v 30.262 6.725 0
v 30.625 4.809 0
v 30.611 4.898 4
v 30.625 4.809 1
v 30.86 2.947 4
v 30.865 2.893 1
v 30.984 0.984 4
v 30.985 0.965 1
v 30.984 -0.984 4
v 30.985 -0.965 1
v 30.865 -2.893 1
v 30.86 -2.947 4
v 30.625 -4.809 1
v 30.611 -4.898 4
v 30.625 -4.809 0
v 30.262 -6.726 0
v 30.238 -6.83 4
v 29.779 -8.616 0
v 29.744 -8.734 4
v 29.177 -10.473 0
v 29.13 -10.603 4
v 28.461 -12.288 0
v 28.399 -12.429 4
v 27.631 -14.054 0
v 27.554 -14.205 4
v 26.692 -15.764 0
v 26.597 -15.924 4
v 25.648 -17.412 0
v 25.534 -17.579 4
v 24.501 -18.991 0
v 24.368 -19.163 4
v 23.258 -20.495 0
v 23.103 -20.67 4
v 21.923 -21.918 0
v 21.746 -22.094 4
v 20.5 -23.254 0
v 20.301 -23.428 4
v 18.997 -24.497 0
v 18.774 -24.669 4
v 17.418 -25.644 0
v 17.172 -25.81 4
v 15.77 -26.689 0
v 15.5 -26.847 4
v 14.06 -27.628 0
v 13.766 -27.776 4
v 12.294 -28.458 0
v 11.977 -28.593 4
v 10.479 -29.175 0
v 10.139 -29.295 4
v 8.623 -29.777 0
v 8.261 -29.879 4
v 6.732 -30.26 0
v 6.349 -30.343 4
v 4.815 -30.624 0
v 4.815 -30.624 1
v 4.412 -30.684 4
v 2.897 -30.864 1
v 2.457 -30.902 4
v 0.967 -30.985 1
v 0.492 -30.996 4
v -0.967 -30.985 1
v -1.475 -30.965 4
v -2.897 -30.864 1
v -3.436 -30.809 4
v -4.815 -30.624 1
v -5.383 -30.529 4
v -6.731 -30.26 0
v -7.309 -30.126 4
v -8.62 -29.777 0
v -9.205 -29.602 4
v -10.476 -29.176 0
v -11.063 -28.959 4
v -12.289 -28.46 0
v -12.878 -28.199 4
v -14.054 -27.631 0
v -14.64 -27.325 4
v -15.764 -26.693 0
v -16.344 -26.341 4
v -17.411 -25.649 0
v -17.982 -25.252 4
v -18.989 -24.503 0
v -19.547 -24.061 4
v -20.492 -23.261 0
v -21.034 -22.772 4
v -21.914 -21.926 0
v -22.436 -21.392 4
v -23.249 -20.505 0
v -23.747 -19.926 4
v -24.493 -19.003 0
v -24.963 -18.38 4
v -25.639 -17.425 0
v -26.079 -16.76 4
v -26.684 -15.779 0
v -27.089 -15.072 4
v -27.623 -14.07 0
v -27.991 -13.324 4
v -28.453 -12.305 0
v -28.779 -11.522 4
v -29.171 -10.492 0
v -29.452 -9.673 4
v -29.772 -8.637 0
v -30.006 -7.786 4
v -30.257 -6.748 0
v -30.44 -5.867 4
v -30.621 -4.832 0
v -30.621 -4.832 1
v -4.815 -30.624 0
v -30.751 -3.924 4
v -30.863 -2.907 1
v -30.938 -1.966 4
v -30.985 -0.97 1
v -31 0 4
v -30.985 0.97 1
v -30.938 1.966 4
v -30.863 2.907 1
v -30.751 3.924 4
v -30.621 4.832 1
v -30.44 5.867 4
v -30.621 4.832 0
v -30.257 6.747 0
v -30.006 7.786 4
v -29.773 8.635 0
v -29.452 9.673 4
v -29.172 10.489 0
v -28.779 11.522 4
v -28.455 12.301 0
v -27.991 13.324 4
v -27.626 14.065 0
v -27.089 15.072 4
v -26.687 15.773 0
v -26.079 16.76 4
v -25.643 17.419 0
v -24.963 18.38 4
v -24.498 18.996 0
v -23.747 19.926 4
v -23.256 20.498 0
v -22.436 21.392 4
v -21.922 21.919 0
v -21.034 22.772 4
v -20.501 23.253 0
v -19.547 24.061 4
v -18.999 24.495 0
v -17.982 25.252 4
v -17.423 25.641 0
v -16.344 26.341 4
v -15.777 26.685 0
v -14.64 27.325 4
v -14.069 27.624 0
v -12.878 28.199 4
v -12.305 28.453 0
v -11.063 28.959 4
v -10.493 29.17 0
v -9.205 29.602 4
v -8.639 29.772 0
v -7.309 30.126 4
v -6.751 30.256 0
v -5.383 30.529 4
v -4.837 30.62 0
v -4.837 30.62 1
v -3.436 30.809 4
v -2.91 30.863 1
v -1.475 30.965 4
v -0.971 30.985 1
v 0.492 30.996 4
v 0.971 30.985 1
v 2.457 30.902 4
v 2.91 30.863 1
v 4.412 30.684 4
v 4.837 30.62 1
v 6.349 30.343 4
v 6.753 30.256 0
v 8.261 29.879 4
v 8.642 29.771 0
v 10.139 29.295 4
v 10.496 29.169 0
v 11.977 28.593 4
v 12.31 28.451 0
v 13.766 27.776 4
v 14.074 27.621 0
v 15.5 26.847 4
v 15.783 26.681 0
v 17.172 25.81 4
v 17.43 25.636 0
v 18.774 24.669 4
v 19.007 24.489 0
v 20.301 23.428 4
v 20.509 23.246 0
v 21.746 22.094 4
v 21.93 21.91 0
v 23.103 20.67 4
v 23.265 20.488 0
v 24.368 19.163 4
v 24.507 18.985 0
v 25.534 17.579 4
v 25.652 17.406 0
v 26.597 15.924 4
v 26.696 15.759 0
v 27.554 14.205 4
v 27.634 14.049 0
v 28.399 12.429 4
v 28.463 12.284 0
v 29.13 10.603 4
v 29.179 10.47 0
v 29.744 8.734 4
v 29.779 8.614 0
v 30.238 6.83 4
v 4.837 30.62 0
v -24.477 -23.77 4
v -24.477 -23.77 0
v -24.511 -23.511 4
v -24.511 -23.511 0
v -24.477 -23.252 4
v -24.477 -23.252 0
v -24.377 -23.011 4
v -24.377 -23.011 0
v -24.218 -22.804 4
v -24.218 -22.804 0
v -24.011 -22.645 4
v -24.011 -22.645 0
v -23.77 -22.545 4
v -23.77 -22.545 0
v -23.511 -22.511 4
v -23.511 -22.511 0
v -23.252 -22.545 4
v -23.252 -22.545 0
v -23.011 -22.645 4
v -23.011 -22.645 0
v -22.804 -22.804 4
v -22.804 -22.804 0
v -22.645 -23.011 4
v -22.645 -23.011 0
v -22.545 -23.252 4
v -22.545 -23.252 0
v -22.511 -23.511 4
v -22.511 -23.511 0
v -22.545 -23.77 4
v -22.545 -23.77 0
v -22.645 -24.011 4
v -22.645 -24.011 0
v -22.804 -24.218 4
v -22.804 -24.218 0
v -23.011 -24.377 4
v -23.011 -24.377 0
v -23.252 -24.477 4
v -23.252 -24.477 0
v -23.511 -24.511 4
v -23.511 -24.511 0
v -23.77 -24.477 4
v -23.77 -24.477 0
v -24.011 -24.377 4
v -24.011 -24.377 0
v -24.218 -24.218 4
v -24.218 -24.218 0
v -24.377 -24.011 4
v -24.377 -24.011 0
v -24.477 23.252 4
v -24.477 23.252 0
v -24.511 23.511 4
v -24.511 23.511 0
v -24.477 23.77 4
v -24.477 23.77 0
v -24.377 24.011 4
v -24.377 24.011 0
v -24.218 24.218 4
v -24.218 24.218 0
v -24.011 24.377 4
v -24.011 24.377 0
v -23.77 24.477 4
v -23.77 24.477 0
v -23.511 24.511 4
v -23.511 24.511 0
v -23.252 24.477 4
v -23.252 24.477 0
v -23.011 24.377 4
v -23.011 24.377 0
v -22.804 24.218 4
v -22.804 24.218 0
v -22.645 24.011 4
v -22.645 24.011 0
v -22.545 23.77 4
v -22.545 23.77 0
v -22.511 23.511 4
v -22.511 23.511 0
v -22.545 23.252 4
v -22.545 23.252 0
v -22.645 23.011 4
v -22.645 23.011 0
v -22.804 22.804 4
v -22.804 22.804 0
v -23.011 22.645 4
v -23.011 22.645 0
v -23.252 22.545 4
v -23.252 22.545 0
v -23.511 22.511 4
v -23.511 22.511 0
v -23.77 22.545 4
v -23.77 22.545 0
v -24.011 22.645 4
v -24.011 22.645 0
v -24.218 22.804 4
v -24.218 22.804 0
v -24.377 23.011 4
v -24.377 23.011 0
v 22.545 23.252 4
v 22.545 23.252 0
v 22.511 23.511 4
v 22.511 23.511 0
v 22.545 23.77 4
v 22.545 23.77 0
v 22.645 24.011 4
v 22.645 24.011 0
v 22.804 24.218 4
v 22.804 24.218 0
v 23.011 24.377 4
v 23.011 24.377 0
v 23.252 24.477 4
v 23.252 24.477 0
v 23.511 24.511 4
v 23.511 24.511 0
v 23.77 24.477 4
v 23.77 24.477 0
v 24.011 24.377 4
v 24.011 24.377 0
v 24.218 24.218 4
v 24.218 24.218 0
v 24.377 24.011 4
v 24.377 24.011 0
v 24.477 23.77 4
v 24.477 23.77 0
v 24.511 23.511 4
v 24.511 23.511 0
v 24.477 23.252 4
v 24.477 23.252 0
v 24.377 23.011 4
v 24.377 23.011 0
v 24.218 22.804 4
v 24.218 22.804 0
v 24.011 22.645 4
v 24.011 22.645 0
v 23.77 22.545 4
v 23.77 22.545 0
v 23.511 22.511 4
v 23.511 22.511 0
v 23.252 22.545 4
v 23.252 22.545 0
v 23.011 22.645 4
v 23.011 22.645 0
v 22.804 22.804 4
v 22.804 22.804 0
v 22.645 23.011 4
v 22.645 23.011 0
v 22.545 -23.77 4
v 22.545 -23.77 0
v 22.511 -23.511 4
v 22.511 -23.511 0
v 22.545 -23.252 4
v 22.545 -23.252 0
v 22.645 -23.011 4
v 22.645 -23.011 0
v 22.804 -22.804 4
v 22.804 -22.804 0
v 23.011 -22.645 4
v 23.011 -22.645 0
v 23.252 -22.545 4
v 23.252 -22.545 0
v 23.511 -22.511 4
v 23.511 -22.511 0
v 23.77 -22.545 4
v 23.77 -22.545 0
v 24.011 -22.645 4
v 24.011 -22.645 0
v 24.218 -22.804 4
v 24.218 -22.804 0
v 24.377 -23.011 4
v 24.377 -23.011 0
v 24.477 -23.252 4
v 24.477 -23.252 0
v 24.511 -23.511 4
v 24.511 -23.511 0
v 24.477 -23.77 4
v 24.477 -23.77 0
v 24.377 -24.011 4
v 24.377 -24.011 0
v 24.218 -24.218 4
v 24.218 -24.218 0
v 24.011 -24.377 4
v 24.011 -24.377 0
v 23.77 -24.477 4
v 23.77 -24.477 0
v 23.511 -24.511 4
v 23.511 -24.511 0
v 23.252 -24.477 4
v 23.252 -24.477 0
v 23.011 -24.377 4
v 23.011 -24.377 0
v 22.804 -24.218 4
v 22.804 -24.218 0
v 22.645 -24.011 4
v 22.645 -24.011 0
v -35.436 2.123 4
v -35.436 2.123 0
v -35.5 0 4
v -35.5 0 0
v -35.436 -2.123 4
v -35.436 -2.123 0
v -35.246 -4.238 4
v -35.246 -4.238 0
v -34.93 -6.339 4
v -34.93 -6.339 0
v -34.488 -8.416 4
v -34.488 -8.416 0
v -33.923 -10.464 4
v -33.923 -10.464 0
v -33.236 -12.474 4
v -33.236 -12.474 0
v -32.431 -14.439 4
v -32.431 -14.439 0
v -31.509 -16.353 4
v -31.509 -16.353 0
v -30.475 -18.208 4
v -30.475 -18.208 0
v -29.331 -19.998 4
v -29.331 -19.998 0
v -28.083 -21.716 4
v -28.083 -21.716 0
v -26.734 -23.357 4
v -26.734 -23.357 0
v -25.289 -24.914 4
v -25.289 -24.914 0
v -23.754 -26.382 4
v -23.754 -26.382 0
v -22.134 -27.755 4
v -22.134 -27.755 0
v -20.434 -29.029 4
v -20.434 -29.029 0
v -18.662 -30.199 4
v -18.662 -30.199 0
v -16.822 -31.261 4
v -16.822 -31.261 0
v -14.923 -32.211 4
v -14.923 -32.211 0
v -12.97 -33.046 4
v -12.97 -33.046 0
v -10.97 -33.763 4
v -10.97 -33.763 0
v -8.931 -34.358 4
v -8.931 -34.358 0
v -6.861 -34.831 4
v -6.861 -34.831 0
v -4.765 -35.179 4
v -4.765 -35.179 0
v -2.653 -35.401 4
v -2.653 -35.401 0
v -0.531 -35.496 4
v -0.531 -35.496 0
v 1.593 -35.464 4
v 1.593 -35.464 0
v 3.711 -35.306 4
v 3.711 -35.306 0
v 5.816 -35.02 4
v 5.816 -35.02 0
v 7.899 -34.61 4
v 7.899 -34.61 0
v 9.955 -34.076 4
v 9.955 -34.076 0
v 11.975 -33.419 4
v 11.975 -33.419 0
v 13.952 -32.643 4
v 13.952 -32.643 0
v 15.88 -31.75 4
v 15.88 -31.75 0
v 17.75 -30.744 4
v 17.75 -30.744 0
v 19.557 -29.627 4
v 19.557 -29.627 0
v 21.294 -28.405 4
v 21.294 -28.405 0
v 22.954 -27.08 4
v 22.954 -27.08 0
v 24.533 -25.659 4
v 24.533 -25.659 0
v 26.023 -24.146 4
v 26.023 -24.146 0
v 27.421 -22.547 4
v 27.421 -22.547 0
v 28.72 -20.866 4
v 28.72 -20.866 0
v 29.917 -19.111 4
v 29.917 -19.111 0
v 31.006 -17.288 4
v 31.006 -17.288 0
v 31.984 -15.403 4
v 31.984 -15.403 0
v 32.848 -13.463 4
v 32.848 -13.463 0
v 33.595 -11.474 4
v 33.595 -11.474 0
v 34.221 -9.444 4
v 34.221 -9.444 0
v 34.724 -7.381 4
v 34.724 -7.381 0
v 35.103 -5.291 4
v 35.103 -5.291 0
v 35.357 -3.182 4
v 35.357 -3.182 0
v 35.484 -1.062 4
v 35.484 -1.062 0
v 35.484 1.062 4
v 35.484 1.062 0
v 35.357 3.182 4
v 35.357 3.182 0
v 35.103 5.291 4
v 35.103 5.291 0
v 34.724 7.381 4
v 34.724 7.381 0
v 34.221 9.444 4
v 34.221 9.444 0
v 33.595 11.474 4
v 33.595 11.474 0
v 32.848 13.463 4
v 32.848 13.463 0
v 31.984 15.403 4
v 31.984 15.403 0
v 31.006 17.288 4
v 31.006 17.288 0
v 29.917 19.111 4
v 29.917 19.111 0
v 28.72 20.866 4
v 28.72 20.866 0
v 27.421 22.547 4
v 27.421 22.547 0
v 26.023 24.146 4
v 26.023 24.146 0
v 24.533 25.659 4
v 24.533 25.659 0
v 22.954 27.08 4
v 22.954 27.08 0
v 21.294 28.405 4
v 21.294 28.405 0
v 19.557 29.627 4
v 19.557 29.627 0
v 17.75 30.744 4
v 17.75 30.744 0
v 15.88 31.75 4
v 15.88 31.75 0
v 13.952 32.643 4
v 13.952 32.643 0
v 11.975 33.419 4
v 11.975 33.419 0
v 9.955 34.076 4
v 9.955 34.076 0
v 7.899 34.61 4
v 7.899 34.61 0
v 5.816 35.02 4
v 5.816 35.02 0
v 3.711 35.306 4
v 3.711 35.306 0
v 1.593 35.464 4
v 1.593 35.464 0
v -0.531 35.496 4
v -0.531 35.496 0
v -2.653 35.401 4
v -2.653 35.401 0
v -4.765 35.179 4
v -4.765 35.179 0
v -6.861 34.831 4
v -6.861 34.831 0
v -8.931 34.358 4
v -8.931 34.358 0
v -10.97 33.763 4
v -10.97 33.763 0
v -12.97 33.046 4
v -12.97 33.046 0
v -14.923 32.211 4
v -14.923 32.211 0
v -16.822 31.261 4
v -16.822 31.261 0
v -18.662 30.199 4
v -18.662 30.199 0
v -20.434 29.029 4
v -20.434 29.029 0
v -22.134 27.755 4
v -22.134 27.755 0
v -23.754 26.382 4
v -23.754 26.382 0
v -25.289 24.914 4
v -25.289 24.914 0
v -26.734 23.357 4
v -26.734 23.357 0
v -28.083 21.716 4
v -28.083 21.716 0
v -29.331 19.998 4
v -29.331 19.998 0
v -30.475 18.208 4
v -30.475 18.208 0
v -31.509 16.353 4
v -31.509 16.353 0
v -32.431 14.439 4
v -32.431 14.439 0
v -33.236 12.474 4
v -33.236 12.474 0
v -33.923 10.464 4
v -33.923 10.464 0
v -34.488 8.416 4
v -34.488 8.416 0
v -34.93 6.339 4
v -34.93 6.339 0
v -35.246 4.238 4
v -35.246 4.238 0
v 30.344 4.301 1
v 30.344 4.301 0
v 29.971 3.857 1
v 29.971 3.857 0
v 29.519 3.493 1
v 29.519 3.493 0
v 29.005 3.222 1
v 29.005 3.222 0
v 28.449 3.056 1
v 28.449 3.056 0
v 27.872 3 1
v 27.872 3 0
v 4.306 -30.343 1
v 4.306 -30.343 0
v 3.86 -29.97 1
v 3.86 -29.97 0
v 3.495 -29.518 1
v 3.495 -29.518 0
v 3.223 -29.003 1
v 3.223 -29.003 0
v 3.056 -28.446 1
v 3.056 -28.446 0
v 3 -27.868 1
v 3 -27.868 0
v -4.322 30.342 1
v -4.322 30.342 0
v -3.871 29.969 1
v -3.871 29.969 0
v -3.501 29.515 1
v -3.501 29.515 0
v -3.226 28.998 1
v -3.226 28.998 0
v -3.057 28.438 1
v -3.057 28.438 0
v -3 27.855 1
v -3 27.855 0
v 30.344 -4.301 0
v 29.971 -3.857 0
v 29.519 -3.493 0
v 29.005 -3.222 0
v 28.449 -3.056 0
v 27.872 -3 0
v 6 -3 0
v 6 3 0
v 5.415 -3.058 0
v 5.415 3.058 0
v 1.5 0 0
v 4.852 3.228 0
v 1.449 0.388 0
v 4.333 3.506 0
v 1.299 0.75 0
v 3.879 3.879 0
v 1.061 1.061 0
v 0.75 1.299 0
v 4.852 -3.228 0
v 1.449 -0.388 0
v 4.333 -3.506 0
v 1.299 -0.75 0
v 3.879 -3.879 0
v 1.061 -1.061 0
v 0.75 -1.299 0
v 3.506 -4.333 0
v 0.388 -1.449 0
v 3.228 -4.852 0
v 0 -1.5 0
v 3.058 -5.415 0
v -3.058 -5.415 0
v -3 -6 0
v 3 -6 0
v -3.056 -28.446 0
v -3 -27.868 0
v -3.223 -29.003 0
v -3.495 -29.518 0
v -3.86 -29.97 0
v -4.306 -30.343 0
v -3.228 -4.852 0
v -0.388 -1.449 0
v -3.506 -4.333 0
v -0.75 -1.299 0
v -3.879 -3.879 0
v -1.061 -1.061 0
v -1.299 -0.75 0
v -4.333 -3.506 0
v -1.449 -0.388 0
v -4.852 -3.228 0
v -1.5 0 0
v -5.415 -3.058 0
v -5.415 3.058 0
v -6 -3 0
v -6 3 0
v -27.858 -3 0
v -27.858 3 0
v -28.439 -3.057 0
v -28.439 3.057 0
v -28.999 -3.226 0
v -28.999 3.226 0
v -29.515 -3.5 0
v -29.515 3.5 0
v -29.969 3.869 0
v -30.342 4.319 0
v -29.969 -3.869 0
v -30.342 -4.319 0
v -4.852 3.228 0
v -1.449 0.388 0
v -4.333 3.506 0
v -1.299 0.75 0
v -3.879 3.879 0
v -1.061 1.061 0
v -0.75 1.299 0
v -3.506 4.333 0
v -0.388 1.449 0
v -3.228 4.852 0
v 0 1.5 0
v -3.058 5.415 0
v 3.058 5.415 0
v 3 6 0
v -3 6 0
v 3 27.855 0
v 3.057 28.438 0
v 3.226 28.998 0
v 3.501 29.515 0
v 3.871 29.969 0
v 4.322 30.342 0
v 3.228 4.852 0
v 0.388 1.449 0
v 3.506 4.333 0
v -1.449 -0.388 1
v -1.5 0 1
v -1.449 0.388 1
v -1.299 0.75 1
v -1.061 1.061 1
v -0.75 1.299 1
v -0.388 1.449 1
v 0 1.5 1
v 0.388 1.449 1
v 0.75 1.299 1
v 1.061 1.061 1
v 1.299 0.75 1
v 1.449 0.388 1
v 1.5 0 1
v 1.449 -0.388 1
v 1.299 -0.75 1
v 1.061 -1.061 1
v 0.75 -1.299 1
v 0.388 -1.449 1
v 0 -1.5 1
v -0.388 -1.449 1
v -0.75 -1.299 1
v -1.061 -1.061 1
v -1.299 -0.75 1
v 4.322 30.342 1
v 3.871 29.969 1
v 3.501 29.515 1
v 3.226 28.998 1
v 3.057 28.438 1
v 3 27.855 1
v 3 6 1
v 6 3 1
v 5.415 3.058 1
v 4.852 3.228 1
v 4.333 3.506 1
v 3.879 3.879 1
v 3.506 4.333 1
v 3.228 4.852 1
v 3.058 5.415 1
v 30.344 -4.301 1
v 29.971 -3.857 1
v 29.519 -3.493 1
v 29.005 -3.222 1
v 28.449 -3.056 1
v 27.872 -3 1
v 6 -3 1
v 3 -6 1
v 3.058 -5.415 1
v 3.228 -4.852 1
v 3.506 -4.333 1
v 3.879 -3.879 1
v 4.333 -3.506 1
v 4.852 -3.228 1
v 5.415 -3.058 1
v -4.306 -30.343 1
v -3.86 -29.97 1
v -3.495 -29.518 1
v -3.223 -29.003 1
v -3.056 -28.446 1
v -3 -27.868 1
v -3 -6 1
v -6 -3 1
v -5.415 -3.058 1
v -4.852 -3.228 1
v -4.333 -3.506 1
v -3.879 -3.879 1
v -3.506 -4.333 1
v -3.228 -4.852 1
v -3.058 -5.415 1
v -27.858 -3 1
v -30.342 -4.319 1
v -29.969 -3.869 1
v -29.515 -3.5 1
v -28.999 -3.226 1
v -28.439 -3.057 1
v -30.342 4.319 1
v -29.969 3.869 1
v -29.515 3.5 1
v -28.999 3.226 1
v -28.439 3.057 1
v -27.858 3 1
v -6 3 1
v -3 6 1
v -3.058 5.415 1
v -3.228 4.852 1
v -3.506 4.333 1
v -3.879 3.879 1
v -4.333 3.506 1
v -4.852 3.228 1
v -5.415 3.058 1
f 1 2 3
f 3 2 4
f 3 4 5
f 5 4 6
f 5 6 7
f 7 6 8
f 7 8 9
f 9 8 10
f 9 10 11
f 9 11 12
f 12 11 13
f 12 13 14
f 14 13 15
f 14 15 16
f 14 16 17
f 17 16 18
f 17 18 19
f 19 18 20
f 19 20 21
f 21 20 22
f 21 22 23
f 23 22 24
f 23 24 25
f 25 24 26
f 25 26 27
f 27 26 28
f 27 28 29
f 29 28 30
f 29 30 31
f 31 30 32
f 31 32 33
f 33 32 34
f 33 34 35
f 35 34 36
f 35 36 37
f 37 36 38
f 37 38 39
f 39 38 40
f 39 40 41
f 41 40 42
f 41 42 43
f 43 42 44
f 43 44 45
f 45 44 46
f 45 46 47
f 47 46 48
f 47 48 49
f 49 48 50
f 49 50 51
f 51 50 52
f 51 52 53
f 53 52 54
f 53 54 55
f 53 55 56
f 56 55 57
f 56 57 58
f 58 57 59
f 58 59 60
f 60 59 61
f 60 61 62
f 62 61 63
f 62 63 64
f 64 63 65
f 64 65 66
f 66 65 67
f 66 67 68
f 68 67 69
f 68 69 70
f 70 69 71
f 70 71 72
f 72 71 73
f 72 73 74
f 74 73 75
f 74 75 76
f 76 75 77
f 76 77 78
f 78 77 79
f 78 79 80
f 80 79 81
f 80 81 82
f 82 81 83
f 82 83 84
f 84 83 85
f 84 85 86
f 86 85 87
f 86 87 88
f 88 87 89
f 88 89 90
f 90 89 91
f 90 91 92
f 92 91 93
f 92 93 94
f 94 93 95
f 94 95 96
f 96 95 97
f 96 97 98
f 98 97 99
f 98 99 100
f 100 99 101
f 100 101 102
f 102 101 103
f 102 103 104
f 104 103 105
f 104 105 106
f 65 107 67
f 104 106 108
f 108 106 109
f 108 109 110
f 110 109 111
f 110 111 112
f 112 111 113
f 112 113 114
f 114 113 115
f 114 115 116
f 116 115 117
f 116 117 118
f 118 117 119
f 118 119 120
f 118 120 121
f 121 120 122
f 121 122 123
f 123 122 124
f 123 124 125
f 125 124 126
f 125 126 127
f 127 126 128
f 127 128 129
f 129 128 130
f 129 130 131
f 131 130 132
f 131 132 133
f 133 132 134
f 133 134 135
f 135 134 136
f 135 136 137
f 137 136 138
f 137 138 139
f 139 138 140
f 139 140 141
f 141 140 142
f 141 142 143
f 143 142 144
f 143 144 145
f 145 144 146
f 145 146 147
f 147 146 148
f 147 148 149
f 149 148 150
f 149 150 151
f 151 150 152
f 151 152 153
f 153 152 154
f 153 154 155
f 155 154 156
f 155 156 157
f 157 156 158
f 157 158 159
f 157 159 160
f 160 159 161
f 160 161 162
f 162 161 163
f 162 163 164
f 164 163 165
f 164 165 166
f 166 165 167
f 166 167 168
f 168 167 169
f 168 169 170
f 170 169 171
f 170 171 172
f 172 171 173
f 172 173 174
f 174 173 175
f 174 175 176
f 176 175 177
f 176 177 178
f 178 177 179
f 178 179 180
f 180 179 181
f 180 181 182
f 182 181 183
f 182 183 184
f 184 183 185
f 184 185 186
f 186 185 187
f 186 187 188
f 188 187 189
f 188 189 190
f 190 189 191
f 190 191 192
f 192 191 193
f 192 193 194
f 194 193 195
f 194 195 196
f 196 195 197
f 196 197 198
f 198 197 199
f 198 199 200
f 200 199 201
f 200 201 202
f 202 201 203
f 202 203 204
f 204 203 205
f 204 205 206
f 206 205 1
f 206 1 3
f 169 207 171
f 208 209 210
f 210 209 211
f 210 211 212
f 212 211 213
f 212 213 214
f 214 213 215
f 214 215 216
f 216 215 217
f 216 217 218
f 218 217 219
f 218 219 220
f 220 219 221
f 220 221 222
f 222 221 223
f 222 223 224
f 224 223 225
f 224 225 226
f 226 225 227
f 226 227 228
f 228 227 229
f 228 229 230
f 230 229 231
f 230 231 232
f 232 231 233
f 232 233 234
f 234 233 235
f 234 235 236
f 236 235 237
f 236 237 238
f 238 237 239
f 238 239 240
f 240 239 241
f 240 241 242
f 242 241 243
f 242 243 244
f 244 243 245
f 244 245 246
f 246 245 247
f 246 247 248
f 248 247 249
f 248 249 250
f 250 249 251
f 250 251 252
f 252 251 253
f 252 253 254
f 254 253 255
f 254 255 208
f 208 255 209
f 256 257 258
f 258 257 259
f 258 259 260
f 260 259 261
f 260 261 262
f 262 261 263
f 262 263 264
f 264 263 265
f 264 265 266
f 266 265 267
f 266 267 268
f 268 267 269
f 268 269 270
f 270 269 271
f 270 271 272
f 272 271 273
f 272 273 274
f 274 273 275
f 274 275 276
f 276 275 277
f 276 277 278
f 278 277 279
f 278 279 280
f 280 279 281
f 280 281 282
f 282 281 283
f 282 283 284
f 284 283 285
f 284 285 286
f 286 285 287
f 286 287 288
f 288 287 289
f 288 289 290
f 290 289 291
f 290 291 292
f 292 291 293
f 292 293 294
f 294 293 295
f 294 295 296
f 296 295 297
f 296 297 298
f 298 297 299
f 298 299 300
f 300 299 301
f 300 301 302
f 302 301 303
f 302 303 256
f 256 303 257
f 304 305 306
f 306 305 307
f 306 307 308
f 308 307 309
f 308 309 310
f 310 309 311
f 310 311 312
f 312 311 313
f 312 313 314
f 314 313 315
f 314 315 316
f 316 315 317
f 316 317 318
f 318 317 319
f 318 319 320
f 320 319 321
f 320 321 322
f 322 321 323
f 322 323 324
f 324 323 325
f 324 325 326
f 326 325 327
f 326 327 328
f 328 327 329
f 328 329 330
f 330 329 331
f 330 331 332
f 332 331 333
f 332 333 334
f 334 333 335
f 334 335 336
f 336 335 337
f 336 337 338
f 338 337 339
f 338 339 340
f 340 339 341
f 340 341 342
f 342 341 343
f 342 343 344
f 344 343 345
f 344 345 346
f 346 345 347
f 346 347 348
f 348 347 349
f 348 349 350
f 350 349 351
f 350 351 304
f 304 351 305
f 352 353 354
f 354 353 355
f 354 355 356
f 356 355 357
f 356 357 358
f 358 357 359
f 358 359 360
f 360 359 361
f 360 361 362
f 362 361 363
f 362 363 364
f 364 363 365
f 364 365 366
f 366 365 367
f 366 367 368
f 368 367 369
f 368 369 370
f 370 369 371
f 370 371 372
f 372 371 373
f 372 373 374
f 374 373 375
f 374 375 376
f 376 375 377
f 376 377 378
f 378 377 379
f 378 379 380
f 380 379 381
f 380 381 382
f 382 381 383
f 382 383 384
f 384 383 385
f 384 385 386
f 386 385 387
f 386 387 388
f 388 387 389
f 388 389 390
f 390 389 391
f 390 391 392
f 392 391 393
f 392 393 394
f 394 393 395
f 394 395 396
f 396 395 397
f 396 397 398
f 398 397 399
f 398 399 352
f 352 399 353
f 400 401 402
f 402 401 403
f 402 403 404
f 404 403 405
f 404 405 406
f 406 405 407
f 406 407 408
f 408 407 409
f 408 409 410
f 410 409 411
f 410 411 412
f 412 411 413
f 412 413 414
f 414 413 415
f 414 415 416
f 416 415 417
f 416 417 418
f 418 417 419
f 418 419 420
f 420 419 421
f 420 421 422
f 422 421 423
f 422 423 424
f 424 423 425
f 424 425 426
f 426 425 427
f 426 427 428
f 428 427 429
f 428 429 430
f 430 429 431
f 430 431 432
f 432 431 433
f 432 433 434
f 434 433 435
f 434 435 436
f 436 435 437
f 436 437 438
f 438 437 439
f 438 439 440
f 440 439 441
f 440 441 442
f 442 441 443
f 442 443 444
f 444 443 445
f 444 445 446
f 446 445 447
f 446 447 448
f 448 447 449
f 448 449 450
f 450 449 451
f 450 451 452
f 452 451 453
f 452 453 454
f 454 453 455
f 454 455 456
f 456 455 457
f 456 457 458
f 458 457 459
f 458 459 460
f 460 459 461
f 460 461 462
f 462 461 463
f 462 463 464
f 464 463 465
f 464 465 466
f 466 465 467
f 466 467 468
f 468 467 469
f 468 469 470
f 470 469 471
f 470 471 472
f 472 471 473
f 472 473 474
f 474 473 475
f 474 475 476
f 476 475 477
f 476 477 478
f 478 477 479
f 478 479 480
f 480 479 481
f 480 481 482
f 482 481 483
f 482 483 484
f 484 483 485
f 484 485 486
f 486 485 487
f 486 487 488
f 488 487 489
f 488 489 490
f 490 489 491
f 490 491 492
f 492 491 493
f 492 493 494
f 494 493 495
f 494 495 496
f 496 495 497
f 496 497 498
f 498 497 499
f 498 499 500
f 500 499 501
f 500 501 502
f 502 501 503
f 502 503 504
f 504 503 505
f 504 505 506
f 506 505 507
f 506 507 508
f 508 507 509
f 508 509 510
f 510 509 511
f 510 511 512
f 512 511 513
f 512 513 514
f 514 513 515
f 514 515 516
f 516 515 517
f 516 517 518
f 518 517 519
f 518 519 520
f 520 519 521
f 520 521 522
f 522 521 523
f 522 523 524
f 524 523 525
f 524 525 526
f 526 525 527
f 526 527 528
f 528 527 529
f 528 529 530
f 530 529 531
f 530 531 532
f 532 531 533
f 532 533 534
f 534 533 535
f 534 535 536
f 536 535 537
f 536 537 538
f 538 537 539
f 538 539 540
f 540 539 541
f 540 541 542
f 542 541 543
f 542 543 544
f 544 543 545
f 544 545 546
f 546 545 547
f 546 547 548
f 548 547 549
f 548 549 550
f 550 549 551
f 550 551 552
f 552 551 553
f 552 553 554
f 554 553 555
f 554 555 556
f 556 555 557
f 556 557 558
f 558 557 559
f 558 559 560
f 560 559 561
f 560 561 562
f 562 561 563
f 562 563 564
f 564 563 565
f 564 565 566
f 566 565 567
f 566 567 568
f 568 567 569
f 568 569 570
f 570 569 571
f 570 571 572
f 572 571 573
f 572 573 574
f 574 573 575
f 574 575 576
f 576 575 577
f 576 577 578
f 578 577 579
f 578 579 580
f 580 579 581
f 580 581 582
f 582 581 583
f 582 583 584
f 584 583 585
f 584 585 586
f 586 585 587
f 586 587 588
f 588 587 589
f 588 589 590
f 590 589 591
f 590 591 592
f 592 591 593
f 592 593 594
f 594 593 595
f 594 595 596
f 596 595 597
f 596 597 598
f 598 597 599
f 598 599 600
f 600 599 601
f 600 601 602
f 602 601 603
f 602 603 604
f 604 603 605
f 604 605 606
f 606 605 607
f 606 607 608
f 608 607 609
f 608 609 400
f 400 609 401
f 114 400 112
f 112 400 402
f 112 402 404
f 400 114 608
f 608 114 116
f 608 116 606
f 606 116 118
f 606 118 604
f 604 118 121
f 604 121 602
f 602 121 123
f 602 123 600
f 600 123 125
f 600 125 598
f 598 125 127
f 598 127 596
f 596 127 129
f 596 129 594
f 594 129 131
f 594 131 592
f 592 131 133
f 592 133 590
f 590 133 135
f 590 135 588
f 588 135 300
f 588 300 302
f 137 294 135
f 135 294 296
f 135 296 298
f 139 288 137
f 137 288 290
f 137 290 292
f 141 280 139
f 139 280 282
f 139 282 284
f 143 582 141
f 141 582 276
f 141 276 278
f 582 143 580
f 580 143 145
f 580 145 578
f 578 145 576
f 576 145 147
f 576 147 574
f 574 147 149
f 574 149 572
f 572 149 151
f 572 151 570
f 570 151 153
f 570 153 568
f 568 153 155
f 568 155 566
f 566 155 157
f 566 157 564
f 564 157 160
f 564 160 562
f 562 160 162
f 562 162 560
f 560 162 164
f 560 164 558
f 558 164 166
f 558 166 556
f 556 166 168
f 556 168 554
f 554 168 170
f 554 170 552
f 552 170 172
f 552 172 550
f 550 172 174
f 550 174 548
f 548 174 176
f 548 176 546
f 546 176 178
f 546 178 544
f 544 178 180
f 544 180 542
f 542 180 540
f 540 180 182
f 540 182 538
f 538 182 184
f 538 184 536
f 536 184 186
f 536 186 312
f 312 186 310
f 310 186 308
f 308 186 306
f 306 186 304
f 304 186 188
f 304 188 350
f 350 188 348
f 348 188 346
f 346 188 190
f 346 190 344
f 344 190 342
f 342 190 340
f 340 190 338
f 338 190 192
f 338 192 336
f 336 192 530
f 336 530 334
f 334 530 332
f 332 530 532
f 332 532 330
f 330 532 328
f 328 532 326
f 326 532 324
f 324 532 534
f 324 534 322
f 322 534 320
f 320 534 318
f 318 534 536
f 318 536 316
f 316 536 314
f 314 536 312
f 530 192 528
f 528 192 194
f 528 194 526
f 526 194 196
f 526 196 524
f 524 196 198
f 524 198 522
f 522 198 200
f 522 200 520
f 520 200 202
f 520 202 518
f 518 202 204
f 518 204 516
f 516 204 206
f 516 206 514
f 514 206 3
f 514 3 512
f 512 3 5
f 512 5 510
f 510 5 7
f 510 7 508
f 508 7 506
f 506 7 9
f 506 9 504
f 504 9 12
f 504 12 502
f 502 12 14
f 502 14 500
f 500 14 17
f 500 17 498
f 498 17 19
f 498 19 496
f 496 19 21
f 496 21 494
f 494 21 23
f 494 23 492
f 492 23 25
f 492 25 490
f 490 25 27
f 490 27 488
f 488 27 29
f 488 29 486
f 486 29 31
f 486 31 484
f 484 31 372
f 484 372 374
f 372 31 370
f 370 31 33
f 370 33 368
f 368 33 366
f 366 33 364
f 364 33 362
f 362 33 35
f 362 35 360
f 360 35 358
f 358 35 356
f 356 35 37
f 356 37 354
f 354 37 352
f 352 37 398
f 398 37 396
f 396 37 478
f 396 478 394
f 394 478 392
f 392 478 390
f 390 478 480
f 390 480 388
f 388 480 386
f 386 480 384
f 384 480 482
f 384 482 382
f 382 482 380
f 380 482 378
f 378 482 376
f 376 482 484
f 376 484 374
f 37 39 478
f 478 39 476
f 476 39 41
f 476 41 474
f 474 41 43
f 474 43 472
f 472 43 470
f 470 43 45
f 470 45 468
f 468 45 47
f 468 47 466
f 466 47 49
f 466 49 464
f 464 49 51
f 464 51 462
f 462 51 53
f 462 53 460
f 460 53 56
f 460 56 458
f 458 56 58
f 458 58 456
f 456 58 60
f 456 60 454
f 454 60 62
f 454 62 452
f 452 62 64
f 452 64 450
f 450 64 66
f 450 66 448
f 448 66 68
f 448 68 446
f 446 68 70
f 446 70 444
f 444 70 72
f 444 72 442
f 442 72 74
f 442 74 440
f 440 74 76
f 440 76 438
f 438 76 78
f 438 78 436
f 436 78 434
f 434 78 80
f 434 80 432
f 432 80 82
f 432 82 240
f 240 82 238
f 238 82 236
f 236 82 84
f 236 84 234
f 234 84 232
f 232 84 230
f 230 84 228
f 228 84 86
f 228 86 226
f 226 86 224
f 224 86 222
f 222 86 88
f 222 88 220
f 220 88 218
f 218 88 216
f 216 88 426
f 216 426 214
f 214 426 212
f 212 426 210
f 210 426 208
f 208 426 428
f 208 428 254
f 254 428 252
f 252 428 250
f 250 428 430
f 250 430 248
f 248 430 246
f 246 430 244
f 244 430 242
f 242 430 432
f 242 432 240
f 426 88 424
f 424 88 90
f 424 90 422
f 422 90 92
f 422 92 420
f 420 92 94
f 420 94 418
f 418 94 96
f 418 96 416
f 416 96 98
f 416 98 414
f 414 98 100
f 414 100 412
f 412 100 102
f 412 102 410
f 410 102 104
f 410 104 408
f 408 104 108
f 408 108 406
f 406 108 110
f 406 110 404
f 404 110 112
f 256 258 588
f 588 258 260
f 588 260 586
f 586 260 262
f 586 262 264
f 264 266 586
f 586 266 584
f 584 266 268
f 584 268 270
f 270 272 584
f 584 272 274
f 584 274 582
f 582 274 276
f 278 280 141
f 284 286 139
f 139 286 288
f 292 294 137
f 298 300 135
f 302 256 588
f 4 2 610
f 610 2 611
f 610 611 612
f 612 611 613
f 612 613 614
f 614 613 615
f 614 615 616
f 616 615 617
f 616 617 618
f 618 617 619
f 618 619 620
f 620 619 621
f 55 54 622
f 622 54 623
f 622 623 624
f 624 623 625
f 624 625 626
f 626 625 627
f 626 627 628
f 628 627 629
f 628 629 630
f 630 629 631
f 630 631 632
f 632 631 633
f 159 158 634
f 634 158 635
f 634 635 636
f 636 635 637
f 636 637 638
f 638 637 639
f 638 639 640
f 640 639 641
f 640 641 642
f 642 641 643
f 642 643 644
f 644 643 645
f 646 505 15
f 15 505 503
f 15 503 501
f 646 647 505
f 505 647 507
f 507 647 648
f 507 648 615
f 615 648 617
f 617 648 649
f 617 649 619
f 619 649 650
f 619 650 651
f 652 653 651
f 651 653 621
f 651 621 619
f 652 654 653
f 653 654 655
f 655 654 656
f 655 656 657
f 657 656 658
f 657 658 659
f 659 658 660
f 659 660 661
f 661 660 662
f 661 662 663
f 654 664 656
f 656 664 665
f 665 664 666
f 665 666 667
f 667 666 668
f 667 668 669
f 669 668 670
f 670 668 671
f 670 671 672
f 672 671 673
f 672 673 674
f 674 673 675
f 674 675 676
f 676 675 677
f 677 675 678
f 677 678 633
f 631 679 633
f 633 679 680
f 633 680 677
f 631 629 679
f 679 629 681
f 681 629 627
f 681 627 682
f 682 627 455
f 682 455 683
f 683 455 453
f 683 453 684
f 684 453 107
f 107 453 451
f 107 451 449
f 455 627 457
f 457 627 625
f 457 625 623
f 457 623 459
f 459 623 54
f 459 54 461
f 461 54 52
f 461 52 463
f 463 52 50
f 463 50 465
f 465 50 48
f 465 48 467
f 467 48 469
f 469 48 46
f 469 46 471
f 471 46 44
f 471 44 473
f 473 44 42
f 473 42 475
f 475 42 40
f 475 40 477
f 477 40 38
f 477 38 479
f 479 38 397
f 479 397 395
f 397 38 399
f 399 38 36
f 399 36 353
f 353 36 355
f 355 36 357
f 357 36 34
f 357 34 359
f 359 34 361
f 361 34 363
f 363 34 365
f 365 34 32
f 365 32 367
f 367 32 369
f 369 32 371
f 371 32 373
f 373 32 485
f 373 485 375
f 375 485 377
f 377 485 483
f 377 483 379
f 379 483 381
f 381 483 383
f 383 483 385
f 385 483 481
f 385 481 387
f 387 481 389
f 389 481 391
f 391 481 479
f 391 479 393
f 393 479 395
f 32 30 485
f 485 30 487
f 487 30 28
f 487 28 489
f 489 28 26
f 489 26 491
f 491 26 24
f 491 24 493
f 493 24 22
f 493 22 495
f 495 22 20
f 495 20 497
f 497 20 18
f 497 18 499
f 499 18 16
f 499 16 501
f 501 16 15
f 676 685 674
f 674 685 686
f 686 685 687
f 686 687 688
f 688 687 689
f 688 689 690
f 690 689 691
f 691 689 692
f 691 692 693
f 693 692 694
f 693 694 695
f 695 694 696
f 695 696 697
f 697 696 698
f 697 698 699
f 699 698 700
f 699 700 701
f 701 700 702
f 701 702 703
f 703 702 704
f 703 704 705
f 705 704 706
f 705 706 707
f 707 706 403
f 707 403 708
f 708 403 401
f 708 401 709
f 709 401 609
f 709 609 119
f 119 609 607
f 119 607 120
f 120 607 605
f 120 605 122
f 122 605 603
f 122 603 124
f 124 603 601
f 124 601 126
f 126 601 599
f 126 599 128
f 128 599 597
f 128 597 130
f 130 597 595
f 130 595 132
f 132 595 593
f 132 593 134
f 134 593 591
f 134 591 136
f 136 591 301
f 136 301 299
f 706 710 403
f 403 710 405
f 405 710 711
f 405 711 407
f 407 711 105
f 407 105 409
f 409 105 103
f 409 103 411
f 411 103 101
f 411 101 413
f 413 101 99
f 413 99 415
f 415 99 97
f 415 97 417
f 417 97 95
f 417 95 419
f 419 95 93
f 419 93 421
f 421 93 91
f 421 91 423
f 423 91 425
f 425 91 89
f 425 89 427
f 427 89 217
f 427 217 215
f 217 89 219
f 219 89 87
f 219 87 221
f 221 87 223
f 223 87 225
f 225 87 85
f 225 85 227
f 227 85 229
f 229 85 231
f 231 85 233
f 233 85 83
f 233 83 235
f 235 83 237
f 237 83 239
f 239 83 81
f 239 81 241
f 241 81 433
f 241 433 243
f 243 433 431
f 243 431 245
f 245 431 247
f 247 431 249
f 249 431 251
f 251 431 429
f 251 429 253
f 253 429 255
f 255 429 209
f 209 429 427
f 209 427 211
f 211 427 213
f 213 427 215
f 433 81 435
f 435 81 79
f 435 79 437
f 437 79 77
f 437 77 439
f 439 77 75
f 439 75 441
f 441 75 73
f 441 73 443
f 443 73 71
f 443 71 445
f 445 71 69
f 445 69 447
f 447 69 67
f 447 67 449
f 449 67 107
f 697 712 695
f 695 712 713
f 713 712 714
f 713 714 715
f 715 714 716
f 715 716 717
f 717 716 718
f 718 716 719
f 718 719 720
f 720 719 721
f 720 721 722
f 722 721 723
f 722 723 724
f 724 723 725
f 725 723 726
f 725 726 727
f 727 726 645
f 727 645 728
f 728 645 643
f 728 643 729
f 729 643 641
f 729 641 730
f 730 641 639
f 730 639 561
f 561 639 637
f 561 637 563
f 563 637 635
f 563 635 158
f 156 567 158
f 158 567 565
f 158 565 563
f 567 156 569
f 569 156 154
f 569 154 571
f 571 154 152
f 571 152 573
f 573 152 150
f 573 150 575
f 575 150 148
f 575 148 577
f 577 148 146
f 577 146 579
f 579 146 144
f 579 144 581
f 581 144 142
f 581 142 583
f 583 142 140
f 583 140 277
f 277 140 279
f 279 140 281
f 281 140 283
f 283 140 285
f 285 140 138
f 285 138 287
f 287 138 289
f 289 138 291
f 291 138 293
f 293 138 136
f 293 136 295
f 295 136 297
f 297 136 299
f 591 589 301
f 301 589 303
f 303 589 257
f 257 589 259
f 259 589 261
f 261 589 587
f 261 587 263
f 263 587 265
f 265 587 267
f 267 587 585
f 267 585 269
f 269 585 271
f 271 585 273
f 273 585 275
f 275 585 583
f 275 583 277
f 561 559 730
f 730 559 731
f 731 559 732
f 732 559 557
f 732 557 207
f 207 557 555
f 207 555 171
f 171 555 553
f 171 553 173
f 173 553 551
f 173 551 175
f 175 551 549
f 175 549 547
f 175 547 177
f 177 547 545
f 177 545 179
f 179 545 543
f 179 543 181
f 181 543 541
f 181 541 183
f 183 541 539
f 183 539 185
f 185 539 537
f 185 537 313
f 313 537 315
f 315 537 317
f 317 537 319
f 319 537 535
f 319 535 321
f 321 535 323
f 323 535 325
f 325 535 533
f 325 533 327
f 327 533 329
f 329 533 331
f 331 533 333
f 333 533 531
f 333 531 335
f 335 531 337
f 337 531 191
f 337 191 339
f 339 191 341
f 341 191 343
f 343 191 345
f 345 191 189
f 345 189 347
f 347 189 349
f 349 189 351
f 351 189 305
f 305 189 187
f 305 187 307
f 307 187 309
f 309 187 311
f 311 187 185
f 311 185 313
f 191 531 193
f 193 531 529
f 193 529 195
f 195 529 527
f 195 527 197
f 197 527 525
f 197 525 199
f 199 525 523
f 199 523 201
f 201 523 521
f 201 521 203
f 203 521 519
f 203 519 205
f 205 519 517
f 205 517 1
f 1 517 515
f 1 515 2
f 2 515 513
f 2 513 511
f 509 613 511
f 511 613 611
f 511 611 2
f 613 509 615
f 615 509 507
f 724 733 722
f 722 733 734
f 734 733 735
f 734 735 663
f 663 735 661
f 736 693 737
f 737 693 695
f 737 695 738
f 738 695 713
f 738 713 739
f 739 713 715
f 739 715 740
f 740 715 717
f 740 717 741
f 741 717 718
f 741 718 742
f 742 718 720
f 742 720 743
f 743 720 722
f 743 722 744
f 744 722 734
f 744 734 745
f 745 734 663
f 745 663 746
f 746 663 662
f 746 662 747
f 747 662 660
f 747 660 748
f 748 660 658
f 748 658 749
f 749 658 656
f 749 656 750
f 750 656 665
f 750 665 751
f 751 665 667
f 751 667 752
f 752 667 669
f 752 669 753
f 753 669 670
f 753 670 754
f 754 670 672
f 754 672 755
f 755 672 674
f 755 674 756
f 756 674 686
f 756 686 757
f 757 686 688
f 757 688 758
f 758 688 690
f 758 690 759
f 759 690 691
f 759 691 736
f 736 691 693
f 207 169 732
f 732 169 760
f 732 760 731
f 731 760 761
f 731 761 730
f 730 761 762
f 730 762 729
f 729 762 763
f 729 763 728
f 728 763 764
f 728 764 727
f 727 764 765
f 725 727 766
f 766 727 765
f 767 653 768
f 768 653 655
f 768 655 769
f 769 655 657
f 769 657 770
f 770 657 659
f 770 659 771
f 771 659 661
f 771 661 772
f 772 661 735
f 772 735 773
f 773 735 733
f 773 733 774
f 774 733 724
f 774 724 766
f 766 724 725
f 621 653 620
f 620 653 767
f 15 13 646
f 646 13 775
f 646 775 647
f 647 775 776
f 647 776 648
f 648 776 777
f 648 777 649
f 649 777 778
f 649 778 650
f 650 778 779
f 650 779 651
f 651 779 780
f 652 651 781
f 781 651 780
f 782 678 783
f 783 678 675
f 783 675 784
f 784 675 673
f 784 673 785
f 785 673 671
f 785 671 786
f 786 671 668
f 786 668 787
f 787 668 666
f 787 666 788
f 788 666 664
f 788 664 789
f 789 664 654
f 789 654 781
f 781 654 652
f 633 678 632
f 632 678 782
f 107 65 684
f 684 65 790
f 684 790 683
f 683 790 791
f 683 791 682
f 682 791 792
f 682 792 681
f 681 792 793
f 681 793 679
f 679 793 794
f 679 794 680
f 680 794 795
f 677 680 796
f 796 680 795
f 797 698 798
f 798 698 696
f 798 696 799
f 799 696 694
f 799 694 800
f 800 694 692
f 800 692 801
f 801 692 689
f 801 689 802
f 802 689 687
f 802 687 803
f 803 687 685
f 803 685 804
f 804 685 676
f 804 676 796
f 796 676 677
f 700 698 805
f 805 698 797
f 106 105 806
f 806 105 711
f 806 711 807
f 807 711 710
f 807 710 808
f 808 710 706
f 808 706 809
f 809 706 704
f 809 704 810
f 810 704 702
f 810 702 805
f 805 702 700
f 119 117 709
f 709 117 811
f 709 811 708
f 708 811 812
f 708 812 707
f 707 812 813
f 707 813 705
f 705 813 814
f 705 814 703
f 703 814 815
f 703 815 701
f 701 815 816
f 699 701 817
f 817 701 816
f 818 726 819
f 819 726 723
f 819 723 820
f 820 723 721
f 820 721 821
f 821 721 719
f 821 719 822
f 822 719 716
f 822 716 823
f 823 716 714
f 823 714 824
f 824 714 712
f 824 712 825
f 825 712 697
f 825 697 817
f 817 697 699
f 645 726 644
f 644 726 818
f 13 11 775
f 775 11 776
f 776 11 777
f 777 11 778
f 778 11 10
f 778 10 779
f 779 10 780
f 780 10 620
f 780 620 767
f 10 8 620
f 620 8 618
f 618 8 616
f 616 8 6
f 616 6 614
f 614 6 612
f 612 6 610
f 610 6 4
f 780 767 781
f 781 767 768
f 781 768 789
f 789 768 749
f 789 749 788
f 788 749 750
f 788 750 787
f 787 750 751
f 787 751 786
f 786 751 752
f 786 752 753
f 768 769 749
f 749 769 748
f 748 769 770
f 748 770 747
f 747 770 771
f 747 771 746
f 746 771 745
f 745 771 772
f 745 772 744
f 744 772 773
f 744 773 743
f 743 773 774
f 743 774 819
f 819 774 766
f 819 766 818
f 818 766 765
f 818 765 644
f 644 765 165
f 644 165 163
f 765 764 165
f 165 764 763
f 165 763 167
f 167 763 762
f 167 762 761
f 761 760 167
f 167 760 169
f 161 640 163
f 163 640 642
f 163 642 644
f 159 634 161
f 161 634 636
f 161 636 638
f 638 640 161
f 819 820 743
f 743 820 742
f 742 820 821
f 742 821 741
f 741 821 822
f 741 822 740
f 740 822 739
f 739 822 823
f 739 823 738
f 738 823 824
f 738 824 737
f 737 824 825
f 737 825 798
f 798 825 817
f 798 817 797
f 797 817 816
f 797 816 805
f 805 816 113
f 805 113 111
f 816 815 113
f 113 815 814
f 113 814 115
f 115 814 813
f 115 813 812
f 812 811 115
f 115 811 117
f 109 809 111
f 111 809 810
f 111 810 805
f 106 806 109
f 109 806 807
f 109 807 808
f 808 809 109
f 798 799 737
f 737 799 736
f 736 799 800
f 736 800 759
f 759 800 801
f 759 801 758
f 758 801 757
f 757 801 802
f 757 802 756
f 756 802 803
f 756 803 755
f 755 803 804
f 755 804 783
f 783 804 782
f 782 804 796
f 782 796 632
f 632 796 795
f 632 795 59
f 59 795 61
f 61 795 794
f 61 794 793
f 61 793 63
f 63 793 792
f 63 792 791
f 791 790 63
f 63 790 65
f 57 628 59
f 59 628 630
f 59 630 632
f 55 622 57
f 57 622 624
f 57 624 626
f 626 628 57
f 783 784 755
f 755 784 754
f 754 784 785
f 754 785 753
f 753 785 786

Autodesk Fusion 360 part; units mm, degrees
sketch "Sketch1" plane through (0, 0, 0) normal (0, 0, 1) x (1, 0, 0)
  circle A0 centre (0, 0) radius 36.5
  circle A1 centre (0, 0) radius 31.5
  line L0 (3, 0) -> (36.5, 0) construction
  circle A2 centre (-24.0416, 24.0416) radius 1
  circle A3 centre (24.0416, 24.0416) radius 1
  circle A4 centre (-24.0416, -24.0416) radius 1
  circle A5 centre (24.0416, -24.0416) radius 1
  line L1 (3, 6) -> (3, 27.8551)
  line L2 (-3, 27.8551) -> (-3, 6)
  line L3 (6, 3) -> (27.8715, 3)
  line L4 (27.8715, -3) -> (6, -3)
  line L5 (3, -6) -> (3, -27.8677)
  line L6 (3, -35) -> (-3, -35)
  line L7 (-3, -27.8677) -> (-3, -6)
  line L8 (-6, -3) -> (-27.8576, -3)
  line L9 (-27.8576, 3) -> (-6, 3)
  arc A6 (3, 6) -> (6, 3) centre (6, 6) ccw
  arc A7 (6, -3) -> (3, -6) centre (6, -6) ccw
  arc A8 (-3, -6) -> (-6, -3) centre (-6, -6) ccw
  arc A9 (-6, 3) -> (-3, 6) centre (-6, 6) ccw
  line L10 (-30.8224, 6.4582) -> (-30.7996, 6.6055)
  line L11 (-30.8224, -6.4582) -> (-30.7996, -6.6055)
  arc A10 (-30.8224, 6.4582) -> (-27.8576, 3) centre (-27.8576, 6) ccw
  arc A11 (-27.8576, -3) -> (-30.8224, -6.4582) centre (-27.8576, -6) ccw
  line L12 (-6.4497, -30.8338) -> (-6.43, -30.8367)
  line L13 (6.4497, -30.8338) -> (6.43, -30.8367)
  arc A12 (-6.4497, -30.8338) -> (-3, -27.8677) centre (-6, -27.8677) ccw
  arc A13 (3, -27.8677) -> (6.4497, -30.8338) centre (6, -27.8677) ccw
  line L14 (30.8381, 6.4465) -> (30.8507, 6.3627)
  line L15 (30.8381, -6.4465) -> (30.8507, -6.3627)
  arc A14 (30.8381, -6.4465) -> (27.8715, -3) centre (27.8715, -6) ccw
  arc A15 (27.8715, 3) -> (30.8381, 6.4465) centre (27.8715, 6) ccw
  line L16 (6.4603, 30.8195) -> (6.6494, 30.7902)
  line L17 (-6.4603, 30.8195) -> (-6.6494, 30.7902)
  arc A16 (-3, 27.8551) -> (-6.4603, 30.8195) centre (-6, 27.8551) ccw
  arc A17 (6.4603, 30.8195) -> (3, 27.8551) centre (6, 27.8551) ccw
  circle A18 centre (0, 0) radius 1.5
  dimension "d1" = 73
  dimension "d2" = 63
  dimension "d5" = 2
  dimension "d6" = 2
  dimension "d7" = 2
  dimension "d8" = 2
  dimension "d10" = 3
  dimension "d11" = 3
  dimension "d12" = 3
  dimension "d13" = 3
  dimension "d14" = 3
  dimension "d15" = 3
  dimension "d16" = 3
  dimension "d17" = 3
  dimension "d18" = 3
  dimension "d19" = 3
  dimension "d20" = 3
  dimension "d21" = 3
  dimension "d22" = 3
extrude "Extrude1" add sketch "Sketch1" along normal blind 1 contours A1 L1 L2 L3 L4 L5 L7 L8 L9 A6 A7 A8 A9 L10 L11 A10 A11 A12 A13 A14 A15 L16 L17 A16 A17
sketch "Sketch2" plane through (0, 0, 1) normal (0, 0, 1) x (-1, 0, 0)
  circle A0 centre (0, 0) radius 1.5
  arc A1 (-6.6494, -30.7902) -> (6.6494, -30.7902) centre (0, 0) ccw
  line L0 (6.6494, -30.7902) -> (6.4603, -30.8195)
  arc A2 (3, -27.8551) -> (6.4603, -30.8195) centre (6, -27.8551) ccw
  line L1 (3, -27.8551) -> (3, -6)
  arc A3 (6, -3) -> (3, -6) centre (6, -6) ccw
  line L2 (6, -3) -> (27.8576, -3)
  arc A4 (30.8224, -6.4582) -> (27.8576, -3) centre (27.8576, -6) ccw
  line L3 (30.8224, -6.4582) -> (30.7996, -6.6055)
  arc A5 (30.7996, -6.6055) -> (30.7996, 6.6055) centre (0, 0) ccw
  line L4 (30.7996, 6.6055) -> (30.8224, 6.4582)
  arc A6 (27.8576, 3) -> (30.8224, 6.4582) centre (27.8576, 6) ccw
  line L5 (27.8576, 3) -> (6, 3)
  arc A7 (3, 6) -> (6, 3) centre (6, 6) ccw
  line L6 (3, 6) -> (3, 27.8677)
  arc A8 (6.4311, 30.8365) -> (3, 27.8677) centre (6, 27.8677) ccw
  arc A9 (6.4311, 30.8365) -> (-6.4311, 30.8365) centre (0, 0) ccw
  arc A10 (-3, 27.8677) -> (-6.4311, 30.8365) centre (-6, 27.8677) ccw
  line L7 (-3, 27.8677) -> (-3, 6)
  arc A11 (-6, 3) -> (-3, 6) centre (-6, 6) ccw
  line L8 (-6, 3) -> (-27.8715, 3)
  arc A12 (-30.8477, 6.3774) -> (-27.8715, 3) centre (-27.8715, 6) ccw
  arc A13 (-30.8477, 6.3774) -> (-30.8477, -6.3774) centre (0, 0) ccw
  arc A14 (-27.8715, -3) -> (-30.8477, -6.3774) centre (-27.8715, -6) ccw
  line L9 (-27.8715, -3) -> (-6, -3)
  arc A15 (-3, -6) -> (-6, -3) centre (-6, -6) ccw
  line L10 (-3, -6) -> (-3, -27.8551)
  arc A16 (-6.4603, -30.8195) -> (-3, -27.8551) centre (-6, -27.8551) ccw
  line L11 (-6.4603, -30.8195) -> (-6.6494, -30.7902)
sketch "Sketch3" plane through (0, 0, 0) normal (0, 0, 1) x (1, 0, 0)
  circle A0 centre (0, 0) radius 31
  circle A1 centre (0, 0) radius 35.5
  line L0 (0, 0) -> (31, 0) construction
  circle A2 centre (-23.5113, 23.5113) radius 1
  circle A3 centre (23.5113, 23.5113) radius 1
  circle A4 centre (23.5113, -23.5113) radius 1
  circle A5 centre (-23.5113, -23.5113) radius 1
  arc A6 (23.5113, -23.5113) -> (24.2077, -22.7936) centre (0, 0) ccw
  dimension "d25" = 62
  dimension "d26" = 71
  dimension "d29" = 2
  dimension "d30" = 2
  dimension "d31" = 2
  dimension "d32" = 2
extrude "Extrude2" add sketch "Sketch3" along normal blind 4
